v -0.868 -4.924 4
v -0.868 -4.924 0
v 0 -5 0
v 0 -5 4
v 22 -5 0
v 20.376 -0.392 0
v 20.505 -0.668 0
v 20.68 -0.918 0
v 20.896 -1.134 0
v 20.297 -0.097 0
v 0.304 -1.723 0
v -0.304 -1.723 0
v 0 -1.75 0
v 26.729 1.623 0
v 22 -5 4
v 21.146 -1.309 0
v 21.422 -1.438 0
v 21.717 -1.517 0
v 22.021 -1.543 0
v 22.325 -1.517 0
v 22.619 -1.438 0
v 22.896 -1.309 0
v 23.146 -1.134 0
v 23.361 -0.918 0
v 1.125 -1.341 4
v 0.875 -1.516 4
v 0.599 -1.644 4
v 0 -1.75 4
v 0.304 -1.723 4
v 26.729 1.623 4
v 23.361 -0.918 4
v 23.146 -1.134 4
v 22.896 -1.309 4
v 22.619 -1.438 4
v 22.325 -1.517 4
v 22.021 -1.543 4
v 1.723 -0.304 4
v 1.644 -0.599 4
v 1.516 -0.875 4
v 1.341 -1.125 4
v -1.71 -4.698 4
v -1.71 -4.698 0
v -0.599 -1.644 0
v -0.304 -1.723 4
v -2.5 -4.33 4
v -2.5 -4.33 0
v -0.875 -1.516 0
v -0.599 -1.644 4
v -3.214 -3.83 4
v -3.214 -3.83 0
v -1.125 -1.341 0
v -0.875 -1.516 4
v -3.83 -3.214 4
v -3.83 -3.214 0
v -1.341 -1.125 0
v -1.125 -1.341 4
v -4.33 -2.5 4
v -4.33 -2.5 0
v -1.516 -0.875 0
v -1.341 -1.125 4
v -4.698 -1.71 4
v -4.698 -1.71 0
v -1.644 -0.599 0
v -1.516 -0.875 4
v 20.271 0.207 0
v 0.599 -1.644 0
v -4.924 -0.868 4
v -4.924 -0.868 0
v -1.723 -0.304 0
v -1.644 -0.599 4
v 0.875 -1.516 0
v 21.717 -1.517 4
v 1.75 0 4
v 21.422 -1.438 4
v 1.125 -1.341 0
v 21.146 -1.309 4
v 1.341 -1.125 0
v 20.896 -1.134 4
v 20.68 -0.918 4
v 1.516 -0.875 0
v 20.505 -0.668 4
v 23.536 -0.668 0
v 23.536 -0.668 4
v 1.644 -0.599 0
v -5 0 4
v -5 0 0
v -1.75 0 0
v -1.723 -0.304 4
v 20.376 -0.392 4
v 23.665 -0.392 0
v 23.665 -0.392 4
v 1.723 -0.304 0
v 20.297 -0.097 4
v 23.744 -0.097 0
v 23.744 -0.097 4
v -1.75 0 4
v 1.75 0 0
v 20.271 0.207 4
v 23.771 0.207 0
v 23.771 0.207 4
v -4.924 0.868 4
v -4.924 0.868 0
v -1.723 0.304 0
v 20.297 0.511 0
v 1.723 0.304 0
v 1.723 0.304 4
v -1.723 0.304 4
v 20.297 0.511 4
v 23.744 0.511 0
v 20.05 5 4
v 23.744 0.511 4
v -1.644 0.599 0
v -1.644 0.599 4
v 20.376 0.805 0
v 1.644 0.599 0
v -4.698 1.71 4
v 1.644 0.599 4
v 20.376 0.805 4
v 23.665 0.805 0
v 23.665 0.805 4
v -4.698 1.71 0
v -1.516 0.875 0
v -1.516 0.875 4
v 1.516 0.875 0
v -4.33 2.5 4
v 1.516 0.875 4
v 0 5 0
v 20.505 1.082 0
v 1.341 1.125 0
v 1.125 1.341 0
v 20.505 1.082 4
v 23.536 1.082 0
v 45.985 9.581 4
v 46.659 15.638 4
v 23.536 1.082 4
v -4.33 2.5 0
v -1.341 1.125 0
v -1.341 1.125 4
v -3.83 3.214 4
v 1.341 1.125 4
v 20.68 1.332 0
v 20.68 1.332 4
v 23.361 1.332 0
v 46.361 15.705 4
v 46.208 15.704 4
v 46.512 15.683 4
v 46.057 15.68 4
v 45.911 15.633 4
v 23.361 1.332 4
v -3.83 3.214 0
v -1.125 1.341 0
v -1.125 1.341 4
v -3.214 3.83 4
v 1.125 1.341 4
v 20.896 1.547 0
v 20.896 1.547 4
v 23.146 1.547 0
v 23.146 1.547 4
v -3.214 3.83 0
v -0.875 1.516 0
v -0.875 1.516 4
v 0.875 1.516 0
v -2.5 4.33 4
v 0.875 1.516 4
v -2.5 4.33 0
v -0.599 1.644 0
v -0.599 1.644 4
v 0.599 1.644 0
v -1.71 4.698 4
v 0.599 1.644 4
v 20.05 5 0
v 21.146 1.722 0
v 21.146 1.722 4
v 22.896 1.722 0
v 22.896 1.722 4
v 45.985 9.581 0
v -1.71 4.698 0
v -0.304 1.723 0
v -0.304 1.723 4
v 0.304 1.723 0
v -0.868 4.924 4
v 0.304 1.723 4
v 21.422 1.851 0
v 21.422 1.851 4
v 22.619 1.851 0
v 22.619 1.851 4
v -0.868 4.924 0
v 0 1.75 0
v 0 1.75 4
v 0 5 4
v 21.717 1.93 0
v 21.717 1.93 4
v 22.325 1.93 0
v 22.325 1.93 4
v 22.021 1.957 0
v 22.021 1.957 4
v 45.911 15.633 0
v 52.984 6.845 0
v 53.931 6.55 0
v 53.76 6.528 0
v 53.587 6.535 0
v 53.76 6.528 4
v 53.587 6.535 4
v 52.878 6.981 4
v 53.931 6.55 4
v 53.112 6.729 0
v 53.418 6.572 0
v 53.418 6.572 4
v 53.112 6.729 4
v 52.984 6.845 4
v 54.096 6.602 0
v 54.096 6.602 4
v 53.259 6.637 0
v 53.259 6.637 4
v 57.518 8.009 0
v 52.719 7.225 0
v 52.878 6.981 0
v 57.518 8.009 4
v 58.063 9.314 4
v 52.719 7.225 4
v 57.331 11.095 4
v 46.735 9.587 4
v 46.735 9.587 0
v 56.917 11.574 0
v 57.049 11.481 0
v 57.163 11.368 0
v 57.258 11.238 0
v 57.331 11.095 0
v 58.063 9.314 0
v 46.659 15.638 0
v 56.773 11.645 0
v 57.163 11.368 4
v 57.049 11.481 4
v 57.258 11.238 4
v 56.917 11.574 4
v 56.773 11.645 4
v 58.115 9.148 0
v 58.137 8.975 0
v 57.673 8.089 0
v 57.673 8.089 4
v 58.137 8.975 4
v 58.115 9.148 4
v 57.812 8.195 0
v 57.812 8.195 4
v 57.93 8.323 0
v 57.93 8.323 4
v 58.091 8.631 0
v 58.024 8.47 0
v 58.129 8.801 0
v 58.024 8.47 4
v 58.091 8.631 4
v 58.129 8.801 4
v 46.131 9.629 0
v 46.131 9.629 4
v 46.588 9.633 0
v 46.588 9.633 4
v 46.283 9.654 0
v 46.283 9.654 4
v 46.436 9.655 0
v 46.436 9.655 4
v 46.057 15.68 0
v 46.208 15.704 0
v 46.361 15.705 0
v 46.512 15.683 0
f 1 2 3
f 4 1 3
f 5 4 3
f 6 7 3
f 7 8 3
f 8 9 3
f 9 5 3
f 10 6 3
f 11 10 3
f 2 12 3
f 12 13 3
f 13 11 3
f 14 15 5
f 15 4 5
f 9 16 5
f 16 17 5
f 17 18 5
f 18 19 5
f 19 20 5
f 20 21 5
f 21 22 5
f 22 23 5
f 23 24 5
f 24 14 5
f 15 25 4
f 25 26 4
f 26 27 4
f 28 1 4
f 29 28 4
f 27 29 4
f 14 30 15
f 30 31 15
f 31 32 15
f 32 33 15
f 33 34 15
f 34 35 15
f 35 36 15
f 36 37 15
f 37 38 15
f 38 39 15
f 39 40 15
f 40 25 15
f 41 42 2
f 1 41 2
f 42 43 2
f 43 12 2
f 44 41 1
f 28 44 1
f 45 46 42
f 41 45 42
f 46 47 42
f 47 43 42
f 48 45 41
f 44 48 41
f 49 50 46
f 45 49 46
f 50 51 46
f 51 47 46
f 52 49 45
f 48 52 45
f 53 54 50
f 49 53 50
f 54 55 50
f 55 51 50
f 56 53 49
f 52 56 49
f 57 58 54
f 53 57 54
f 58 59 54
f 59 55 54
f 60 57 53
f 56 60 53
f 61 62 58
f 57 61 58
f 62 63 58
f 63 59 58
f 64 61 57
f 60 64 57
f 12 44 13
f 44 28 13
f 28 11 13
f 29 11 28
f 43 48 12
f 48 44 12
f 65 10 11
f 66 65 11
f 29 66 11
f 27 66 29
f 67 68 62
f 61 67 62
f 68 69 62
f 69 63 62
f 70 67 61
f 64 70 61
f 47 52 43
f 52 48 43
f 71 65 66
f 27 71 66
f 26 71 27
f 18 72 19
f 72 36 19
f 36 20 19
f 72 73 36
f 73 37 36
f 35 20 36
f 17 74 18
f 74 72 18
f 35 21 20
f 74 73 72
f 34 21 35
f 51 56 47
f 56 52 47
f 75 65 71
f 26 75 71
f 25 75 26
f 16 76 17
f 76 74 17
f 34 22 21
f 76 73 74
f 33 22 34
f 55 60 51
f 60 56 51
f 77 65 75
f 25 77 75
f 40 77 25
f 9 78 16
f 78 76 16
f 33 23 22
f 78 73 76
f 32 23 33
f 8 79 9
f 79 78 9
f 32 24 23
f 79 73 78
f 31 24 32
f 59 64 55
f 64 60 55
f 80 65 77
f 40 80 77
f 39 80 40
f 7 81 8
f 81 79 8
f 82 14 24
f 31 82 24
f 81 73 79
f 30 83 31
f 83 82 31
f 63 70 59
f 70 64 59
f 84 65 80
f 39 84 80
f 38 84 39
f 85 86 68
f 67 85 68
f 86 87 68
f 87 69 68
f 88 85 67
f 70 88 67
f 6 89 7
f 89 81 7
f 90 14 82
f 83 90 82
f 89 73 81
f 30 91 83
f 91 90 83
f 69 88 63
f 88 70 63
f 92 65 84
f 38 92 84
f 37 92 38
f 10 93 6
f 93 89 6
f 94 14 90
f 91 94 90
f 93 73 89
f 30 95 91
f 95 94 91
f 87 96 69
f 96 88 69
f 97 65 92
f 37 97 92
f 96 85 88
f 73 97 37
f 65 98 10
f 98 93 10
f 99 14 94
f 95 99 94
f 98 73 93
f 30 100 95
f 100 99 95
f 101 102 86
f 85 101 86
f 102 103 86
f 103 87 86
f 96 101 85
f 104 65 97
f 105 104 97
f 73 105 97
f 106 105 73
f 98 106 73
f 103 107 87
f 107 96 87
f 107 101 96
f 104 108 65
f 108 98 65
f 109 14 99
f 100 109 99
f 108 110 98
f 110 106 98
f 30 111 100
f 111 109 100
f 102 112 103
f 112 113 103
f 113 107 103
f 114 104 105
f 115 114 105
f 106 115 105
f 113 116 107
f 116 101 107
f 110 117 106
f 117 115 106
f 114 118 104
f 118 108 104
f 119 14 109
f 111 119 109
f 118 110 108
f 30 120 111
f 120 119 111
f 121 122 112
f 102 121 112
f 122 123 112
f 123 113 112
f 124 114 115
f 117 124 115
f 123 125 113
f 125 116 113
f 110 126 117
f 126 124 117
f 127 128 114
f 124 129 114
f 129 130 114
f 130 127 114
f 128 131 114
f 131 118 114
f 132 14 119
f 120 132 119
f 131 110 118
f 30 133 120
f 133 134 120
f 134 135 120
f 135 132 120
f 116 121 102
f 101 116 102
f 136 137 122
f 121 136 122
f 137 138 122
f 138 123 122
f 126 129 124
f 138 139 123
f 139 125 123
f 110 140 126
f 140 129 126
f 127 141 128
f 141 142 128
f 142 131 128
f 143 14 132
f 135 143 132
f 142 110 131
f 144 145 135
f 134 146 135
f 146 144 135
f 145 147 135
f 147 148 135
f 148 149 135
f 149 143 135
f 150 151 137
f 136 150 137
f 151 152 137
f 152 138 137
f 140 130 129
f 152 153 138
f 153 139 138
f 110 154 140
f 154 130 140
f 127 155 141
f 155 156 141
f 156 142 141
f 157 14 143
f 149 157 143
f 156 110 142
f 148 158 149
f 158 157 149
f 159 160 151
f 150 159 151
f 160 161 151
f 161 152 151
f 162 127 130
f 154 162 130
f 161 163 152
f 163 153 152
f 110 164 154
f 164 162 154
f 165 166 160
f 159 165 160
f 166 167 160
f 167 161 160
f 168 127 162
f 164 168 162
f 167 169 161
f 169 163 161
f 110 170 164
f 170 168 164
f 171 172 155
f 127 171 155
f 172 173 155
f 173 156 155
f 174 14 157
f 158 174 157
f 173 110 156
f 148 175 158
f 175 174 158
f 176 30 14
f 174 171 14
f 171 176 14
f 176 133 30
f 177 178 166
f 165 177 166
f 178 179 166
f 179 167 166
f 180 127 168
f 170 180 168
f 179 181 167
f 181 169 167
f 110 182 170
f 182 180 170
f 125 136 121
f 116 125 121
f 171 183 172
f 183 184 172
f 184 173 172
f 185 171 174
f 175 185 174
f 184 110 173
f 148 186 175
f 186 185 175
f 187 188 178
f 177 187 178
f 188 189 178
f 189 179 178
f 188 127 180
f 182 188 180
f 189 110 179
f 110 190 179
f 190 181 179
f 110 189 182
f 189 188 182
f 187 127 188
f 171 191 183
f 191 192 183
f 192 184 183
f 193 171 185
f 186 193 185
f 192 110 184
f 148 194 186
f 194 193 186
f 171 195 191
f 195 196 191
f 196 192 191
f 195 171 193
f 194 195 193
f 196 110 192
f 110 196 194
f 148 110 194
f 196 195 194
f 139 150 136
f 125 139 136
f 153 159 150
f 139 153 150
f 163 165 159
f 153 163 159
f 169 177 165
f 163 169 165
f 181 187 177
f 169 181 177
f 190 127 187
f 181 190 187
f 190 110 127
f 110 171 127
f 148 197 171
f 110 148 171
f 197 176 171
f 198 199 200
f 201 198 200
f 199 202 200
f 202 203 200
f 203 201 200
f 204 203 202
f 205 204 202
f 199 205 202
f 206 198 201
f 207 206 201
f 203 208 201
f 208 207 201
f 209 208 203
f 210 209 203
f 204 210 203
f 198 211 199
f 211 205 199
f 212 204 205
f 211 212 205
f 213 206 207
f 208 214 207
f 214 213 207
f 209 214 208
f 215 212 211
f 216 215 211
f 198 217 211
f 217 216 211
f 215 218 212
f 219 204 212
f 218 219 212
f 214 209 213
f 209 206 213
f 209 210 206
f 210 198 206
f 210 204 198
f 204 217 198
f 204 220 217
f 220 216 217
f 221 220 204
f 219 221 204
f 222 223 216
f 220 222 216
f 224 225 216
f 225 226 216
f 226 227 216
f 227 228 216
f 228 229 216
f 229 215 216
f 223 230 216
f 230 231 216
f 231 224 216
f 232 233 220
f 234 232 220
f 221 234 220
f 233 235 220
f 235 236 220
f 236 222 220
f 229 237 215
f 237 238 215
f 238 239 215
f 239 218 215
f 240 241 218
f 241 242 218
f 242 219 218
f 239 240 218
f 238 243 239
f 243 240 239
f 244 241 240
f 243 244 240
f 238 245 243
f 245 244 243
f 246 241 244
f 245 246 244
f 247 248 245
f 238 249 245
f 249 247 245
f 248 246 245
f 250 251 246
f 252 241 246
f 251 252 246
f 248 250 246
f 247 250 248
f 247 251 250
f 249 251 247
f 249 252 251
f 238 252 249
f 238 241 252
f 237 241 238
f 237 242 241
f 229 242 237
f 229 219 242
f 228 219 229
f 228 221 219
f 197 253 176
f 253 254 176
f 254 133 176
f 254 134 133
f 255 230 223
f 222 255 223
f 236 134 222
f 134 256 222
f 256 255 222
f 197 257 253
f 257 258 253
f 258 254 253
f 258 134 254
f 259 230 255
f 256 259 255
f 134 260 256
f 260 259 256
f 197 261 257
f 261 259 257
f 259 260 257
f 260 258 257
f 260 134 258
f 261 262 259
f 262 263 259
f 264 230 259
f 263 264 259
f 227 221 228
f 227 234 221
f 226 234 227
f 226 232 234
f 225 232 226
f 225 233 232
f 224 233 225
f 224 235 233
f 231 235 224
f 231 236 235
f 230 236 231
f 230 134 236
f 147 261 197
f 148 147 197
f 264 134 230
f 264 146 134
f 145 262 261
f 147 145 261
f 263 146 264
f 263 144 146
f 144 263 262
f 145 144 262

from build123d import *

# Parameters (mm, degrees)
SKETCH1_R               = 1.5
BOSS_EXTRUDE3_DEPTH     = 4
CONG_3_R                = 1
CONG_4_R                = 1
ESQUISSE1_R             = 1.75
ENL_V_MAT_EXTRU_1_DEPTH = 10


with BuildPart() as part:
    # Sketch1 → Boss-Extrude3 (new body)
    with BuildSketch(Plane.XY):
        with BuildLine():
            Line((20.05, 5), (0, 5))
            ThreePointArc((0, 5), (-5, 0), (0, -5))
            Line((0, -5), (22, -5))
            Line((22, -5), (26.729403417, 1.622573056))
            Line((26.729403417, 1.622573056), (46.35880254, 9.735790053))
            Line((46.35880254, 9.735790053), (52.718761051, 7.224926885))
            Line((52.718761051, 7.224926885), (53.329707658, 6.286771643))
            Line((53.329707658, 6.286771643), (58.443335859, 8.389238381))
            Line((58.443335859, 8.389238381), (57.169030474, 11.488609151))
            Line((57.169030474, 11.488609151), (46.283795068, 15.786017162))
            Line((46.283795068, 15.786017162), (20.05, 5))
        make_face()
        Circle(SKETCH1_R, mode=Mode.SUBTRACT)
        with Locations((22.020705275, 0.206842568)):
            Circle(SKETCH1_R, mode=Mode.SUBTRACT)
    extrude(amount=BOSS_EXTRUDE3_DEPTH)

    # Congé3
    cong_3_edges = [part.edges().sort_by_distance(p)[0] for p in [
        (58.443335859, 8.389238381, 2),
        (53.329707658, 6.286771643, 2),
        (46.35880254, 9.735790053, 2),
    ]]
    fillet(cong_3_edges, radius=CONG_3_R)

    # Congé4
    cong_4_edges = [part.edges().sort_by_distance(p)[0] for p in [
        (46.283795068, 15.786017162, 2),
        (57.169030474, 11.488609151, 2),
    ]]
    fillet(cong_4_edges, radius=CONG_4_R)

    # Esquisse1 → Enlèv. mat.-Extru.1 (cut)
    with BuildSketch(Plane.XY.offset(4)):
        with Locations((22.020705275, 0.206842568)):
            Circle(ESQUISSE1_R)
        Circle(ESQUISSE1_R)
    extrude(amount=-ENL_V_MAT_EXTRU_1_DEPTH, mode=Mode.SUBTRACT)


solid = part.part
